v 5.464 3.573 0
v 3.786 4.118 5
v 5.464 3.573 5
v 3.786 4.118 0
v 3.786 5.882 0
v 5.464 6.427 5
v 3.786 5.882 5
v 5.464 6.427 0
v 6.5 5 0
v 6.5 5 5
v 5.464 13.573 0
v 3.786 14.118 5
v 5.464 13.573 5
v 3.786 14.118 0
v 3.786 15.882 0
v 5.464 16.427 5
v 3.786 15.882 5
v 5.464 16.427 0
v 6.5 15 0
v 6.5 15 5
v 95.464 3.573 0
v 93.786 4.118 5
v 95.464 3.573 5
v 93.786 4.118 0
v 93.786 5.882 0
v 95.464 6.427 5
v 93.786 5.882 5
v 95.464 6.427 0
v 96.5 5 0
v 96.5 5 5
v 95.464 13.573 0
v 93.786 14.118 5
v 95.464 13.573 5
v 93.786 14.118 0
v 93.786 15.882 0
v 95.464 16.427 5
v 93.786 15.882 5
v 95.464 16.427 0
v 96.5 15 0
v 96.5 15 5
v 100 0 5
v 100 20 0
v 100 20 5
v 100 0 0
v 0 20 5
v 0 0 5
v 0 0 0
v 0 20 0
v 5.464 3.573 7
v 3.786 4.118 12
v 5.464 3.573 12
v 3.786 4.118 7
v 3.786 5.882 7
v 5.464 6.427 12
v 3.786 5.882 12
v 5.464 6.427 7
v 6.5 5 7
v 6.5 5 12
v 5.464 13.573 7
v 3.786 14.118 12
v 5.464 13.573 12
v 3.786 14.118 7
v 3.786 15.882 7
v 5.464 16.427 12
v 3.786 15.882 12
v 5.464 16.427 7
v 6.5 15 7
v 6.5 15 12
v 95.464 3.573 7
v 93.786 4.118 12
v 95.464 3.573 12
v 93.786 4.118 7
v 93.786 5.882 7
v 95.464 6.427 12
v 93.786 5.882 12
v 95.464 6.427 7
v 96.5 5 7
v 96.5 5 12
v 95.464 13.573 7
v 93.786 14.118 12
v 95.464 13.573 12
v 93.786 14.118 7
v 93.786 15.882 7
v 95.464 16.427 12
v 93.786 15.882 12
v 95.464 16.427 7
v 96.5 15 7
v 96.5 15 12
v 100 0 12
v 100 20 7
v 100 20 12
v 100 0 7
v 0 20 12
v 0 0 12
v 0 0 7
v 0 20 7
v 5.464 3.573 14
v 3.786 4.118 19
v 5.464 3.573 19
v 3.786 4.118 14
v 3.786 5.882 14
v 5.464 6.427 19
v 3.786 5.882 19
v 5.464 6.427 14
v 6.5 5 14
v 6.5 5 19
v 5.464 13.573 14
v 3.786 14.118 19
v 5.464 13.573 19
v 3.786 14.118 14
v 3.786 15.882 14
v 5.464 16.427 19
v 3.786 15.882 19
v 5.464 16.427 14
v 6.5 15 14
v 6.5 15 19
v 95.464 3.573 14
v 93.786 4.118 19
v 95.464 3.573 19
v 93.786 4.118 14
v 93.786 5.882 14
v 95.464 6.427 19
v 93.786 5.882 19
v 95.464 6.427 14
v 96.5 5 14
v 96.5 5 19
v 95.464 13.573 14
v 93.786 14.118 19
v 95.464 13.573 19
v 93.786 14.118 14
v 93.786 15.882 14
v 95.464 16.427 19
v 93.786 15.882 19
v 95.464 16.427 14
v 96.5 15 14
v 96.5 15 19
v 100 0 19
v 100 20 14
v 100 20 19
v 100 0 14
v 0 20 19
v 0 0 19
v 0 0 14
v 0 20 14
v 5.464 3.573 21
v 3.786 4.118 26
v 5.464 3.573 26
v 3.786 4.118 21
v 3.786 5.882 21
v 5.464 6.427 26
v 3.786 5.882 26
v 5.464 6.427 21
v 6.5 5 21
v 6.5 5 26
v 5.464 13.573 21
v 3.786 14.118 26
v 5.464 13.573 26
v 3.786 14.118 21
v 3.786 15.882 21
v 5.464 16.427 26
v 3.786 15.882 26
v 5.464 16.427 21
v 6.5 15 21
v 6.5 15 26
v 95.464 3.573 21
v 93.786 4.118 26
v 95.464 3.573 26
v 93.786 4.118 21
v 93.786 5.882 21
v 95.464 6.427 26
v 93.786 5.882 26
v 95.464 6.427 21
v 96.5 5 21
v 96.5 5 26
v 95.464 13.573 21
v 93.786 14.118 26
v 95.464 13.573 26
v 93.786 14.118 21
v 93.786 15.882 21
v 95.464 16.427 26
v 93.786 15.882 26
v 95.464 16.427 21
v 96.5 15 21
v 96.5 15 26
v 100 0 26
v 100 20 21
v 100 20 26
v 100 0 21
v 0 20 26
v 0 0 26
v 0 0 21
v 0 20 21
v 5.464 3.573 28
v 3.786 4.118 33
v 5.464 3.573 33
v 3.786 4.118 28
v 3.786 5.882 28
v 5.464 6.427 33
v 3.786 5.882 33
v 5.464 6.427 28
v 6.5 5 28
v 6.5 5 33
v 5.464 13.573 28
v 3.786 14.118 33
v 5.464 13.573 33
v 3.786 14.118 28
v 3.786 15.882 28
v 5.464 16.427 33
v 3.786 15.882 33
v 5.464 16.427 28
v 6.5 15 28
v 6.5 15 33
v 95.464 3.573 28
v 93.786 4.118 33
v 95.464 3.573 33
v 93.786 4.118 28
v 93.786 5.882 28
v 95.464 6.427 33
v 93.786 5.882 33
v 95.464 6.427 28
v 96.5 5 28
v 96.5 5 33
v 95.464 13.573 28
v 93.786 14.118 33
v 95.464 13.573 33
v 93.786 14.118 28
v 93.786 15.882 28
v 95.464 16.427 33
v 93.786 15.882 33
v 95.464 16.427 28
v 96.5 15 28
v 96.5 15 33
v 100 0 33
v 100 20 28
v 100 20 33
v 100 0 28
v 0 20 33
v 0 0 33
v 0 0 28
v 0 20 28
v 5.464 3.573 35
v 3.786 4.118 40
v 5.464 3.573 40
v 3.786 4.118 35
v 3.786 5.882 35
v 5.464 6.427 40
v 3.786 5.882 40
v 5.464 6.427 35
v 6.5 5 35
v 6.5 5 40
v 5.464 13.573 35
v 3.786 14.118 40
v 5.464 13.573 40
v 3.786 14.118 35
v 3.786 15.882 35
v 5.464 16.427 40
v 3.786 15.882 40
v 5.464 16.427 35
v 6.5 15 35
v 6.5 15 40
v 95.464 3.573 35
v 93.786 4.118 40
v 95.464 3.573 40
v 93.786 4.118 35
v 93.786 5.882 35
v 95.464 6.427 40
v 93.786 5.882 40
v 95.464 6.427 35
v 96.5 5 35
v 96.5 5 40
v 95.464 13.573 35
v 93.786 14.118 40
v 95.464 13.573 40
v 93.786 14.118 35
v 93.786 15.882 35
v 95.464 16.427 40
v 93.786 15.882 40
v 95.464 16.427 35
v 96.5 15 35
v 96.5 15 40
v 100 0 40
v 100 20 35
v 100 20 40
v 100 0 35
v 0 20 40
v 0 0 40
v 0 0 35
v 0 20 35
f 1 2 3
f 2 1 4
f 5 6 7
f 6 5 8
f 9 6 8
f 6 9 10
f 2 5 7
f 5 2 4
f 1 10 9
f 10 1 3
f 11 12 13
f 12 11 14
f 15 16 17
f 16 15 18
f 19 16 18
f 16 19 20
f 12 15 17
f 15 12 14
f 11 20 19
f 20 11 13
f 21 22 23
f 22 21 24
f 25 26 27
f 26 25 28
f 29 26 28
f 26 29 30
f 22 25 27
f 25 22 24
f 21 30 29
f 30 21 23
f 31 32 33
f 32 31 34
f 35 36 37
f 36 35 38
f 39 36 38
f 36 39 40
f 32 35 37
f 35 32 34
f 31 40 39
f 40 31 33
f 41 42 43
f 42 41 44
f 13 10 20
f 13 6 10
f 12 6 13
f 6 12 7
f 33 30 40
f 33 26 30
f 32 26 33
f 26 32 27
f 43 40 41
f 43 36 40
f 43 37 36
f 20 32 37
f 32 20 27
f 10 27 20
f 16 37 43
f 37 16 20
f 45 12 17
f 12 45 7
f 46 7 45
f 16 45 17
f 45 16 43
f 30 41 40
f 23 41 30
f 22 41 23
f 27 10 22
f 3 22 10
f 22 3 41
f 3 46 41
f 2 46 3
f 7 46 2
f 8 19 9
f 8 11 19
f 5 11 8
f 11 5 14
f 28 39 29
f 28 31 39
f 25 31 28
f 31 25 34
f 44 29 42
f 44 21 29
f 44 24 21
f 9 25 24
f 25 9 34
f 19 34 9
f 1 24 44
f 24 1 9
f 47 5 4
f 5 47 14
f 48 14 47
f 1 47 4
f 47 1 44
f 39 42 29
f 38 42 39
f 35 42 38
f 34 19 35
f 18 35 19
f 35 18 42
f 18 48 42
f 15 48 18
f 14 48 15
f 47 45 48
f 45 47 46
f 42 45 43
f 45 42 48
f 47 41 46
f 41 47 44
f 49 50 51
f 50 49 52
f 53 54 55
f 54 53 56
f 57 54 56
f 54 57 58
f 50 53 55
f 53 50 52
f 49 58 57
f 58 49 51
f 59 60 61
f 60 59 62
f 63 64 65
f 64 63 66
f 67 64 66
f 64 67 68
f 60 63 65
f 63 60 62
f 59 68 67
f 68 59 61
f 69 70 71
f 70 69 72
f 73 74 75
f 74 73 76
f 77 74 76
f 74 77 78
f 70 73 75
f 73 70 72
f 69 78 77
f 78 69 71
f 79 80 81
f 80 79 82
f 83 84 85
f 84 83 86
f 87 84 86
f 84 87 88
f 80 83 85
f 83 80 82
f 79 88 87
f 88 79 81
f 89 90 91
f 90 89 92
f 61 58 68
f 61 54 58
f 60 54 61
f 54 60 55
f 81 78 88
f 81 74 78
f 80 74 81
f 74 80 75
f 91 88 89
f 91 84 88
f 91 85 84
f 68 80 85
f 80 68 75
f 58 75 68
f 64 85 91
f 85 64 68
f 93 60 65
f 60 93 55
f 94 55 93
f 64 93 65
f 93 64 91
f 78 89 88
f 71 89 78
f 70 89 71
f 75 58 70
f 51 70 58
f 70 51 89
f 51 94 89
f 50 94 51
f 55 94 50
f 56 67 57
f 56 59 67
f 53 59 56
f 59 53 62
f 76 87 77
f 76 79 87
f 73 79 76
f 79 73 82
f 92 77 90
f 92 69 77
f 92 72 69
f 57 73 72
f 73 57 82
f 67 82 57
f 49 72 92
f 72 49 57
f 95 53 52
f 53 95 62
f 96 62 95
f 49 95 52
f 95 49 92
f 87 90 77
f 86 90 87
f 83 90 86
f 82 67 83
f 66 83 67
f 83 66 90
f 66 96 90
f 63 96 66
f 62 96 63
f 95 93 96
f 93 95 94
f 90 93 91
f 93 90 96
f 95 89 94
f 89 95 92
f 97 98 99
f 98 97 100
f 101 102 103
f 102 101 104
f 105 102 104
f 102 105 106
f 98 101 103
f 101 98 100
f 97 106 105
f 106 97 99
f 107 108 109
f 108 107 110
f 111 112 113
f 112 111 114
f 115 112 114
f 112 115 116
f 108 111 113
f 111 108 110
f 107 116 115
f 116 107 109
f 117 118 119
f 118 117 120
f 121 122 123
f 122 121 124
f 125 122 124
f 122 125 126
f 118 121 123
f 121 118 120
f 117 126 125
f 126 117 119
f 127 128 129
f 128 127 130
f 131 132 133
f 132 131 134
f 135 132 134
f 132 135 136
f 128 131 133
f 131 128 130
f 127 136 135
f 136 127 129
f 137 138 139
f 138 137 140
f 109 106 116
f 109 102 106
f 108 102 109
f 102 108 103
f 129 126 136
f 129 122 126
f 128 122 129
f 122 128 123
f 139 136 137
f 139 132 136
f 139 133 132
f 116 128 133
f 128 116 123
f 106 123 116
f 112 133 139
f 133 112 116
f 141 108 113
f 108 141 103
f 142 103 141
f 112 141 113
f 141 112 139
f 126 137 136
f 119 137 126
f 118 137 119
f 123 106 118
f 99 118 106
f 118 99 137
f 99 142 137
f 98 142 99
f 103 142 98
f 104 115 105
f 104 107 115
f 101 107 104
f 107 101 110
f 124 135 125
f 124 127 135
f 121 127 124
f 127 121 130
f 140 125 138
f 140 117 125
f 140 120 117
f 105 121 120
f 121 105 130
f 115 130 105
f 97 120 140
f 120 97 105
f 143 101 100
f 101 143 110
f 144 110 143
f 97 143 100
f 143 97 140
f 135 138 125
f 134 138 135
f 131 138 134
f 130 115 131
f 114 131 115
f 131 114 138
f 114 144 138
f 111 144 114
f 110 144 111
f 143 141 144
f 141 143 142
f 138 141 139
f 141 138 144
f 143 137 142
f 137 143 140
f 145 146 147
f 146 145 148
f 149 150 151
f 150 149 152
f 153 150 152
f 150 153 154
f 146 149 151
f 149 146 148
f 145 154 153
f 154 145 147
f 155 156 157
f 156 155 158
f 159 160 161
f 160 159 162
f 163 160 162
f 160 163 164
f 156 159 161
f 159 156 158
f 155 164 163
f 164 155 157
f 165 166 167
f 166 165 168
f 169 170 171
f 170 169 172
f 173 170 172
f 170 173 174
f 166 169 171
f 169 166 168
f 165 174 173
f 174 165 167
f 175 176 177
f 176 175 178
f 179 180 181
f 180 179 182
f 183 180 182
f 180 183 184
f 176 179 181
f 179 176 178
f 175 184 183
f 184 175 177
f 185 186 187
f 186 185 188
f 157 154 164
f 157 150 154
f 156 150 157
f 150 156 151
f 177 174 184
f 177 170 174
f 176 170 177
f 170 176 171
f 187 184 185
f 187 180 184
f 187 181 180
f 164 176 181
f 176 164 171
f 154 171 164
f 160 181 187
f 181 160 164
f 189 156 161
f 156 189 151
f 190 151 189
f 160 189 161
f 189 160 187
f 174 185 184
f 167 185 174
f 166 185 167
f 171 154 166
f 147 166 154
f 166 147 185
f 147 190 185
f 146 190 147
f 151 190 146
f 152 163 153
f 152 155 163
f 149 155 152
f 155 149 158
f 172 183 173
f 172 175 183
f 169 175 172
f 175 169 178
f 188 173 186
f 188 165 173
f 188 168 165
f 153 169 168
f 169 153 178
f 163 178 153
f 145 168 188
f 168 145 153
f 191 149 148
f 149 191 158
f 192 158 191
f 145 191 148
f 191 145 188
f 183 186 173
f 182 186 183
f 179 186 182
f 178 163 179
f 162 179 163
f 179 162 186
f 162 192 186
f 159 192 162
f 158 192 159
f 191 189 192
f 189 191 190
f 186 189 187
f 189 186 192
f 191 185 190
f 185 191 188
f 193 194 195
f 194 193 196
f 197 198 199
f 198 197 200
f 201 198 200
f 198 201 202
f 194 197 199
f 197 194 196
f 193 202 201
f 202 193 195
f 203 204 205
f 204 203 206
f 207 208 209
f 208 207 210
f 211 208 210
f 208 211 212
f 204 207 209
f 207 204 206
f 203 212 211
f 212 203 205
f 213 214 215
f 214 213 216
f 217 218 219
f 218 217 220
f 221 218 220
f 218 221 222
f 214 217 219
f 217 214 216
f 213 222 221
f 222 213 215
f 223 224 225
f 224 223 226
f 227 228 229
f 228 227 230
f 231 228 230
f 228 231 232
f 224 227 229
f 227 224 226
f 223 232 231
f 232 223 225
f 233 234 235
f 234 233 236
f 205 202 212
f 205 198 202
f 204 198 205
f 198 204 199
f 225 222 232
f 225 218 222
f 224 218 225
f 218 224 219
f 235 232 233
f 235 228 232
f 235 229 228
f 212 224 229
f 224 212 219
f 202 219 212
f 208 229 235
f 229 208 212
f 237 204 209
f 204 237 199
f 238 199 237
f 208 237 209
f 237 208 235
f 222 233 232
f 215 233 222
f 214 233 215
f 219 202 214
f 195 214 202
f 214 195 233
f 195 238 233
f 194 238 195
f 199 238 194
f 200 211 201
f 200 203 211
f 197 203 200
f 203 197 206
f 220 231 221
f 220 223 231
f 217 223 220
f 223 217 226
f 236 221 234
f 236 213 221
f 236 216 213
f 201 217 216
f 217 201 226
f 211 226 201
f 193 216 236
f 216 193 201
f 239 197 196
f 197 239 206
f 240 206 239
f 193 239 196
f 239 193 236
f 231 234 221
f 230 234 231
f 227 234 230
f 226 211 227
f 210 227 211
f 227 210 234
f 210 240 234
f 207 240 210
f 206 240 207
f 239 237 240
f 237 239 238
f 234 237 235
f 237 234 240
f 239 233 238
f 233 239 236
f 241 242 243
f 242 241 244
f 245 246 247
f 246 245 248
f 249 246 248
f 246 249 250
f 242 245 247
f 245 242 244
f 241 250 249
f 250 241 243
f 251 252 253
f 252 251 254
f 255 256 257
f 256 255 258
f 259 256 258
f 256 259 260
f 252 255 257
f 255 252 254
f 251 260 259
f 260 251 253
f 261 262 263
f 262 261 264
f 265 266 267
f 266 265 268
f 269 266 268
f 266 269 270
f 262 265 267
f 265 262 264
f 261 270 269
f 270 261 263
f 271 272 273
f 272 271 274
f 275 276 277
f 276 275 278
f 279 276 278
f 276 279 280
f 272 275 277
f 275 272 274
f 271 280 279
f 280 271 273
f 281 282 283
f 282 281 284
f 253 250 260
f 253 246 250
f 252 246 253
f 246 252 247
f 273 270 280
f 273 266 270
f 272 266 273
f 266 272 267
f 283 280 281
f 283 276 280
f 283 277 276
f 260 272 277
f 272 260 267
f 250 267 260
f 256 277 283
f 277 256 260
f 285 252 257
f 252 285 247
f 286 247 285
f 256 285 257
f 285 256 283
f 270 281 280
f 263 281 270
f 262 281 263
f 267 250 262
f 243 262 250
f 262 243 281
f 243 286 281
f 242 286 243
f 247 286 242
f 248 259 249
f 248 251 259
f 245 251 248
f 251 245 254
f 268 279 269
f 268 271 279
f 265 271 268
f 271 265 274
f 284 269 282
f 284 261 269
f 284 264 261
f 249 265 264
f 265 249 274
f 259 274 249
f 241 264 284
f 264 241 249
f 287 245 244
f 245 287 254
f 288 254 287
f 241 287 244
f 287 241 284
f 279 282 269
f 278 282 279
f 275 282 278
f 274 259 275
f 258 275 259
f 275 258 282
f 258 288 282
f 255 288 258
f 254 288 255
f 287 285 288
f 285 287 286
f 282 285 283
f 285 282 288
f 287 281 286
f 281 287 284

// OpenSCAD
// Plate dimensions
plate_length = 100;
plate_width = 20;
plate_thickness = 5;
hole_diameter = 3;
hole_offset = 5;
num_plates = 6;
spacing = 2; // Spacing between plates

// Function to create a single plate with four holes
module plate() {
    difference() {
        cube([plate_length, plate_width, plate_thickness]);
        for (x = [hole_offset, plate_length - hole_offset]) {
            for (y = [hole_offset, plate_width - hole_offset]) {
                translate([x, y, -1]) 
                    cylinder(h=plate_thickness + 2, d=hole_diameter);
            }
        }
    }
}

// Stack the plates in layers
module stacked_plates() {
    for (i = [0:num_plates-1]) {
        translate([0, 0, i * (plate_thickness + spacing)])
            plate();
    }
}

// Render the model
stacked_plates();
